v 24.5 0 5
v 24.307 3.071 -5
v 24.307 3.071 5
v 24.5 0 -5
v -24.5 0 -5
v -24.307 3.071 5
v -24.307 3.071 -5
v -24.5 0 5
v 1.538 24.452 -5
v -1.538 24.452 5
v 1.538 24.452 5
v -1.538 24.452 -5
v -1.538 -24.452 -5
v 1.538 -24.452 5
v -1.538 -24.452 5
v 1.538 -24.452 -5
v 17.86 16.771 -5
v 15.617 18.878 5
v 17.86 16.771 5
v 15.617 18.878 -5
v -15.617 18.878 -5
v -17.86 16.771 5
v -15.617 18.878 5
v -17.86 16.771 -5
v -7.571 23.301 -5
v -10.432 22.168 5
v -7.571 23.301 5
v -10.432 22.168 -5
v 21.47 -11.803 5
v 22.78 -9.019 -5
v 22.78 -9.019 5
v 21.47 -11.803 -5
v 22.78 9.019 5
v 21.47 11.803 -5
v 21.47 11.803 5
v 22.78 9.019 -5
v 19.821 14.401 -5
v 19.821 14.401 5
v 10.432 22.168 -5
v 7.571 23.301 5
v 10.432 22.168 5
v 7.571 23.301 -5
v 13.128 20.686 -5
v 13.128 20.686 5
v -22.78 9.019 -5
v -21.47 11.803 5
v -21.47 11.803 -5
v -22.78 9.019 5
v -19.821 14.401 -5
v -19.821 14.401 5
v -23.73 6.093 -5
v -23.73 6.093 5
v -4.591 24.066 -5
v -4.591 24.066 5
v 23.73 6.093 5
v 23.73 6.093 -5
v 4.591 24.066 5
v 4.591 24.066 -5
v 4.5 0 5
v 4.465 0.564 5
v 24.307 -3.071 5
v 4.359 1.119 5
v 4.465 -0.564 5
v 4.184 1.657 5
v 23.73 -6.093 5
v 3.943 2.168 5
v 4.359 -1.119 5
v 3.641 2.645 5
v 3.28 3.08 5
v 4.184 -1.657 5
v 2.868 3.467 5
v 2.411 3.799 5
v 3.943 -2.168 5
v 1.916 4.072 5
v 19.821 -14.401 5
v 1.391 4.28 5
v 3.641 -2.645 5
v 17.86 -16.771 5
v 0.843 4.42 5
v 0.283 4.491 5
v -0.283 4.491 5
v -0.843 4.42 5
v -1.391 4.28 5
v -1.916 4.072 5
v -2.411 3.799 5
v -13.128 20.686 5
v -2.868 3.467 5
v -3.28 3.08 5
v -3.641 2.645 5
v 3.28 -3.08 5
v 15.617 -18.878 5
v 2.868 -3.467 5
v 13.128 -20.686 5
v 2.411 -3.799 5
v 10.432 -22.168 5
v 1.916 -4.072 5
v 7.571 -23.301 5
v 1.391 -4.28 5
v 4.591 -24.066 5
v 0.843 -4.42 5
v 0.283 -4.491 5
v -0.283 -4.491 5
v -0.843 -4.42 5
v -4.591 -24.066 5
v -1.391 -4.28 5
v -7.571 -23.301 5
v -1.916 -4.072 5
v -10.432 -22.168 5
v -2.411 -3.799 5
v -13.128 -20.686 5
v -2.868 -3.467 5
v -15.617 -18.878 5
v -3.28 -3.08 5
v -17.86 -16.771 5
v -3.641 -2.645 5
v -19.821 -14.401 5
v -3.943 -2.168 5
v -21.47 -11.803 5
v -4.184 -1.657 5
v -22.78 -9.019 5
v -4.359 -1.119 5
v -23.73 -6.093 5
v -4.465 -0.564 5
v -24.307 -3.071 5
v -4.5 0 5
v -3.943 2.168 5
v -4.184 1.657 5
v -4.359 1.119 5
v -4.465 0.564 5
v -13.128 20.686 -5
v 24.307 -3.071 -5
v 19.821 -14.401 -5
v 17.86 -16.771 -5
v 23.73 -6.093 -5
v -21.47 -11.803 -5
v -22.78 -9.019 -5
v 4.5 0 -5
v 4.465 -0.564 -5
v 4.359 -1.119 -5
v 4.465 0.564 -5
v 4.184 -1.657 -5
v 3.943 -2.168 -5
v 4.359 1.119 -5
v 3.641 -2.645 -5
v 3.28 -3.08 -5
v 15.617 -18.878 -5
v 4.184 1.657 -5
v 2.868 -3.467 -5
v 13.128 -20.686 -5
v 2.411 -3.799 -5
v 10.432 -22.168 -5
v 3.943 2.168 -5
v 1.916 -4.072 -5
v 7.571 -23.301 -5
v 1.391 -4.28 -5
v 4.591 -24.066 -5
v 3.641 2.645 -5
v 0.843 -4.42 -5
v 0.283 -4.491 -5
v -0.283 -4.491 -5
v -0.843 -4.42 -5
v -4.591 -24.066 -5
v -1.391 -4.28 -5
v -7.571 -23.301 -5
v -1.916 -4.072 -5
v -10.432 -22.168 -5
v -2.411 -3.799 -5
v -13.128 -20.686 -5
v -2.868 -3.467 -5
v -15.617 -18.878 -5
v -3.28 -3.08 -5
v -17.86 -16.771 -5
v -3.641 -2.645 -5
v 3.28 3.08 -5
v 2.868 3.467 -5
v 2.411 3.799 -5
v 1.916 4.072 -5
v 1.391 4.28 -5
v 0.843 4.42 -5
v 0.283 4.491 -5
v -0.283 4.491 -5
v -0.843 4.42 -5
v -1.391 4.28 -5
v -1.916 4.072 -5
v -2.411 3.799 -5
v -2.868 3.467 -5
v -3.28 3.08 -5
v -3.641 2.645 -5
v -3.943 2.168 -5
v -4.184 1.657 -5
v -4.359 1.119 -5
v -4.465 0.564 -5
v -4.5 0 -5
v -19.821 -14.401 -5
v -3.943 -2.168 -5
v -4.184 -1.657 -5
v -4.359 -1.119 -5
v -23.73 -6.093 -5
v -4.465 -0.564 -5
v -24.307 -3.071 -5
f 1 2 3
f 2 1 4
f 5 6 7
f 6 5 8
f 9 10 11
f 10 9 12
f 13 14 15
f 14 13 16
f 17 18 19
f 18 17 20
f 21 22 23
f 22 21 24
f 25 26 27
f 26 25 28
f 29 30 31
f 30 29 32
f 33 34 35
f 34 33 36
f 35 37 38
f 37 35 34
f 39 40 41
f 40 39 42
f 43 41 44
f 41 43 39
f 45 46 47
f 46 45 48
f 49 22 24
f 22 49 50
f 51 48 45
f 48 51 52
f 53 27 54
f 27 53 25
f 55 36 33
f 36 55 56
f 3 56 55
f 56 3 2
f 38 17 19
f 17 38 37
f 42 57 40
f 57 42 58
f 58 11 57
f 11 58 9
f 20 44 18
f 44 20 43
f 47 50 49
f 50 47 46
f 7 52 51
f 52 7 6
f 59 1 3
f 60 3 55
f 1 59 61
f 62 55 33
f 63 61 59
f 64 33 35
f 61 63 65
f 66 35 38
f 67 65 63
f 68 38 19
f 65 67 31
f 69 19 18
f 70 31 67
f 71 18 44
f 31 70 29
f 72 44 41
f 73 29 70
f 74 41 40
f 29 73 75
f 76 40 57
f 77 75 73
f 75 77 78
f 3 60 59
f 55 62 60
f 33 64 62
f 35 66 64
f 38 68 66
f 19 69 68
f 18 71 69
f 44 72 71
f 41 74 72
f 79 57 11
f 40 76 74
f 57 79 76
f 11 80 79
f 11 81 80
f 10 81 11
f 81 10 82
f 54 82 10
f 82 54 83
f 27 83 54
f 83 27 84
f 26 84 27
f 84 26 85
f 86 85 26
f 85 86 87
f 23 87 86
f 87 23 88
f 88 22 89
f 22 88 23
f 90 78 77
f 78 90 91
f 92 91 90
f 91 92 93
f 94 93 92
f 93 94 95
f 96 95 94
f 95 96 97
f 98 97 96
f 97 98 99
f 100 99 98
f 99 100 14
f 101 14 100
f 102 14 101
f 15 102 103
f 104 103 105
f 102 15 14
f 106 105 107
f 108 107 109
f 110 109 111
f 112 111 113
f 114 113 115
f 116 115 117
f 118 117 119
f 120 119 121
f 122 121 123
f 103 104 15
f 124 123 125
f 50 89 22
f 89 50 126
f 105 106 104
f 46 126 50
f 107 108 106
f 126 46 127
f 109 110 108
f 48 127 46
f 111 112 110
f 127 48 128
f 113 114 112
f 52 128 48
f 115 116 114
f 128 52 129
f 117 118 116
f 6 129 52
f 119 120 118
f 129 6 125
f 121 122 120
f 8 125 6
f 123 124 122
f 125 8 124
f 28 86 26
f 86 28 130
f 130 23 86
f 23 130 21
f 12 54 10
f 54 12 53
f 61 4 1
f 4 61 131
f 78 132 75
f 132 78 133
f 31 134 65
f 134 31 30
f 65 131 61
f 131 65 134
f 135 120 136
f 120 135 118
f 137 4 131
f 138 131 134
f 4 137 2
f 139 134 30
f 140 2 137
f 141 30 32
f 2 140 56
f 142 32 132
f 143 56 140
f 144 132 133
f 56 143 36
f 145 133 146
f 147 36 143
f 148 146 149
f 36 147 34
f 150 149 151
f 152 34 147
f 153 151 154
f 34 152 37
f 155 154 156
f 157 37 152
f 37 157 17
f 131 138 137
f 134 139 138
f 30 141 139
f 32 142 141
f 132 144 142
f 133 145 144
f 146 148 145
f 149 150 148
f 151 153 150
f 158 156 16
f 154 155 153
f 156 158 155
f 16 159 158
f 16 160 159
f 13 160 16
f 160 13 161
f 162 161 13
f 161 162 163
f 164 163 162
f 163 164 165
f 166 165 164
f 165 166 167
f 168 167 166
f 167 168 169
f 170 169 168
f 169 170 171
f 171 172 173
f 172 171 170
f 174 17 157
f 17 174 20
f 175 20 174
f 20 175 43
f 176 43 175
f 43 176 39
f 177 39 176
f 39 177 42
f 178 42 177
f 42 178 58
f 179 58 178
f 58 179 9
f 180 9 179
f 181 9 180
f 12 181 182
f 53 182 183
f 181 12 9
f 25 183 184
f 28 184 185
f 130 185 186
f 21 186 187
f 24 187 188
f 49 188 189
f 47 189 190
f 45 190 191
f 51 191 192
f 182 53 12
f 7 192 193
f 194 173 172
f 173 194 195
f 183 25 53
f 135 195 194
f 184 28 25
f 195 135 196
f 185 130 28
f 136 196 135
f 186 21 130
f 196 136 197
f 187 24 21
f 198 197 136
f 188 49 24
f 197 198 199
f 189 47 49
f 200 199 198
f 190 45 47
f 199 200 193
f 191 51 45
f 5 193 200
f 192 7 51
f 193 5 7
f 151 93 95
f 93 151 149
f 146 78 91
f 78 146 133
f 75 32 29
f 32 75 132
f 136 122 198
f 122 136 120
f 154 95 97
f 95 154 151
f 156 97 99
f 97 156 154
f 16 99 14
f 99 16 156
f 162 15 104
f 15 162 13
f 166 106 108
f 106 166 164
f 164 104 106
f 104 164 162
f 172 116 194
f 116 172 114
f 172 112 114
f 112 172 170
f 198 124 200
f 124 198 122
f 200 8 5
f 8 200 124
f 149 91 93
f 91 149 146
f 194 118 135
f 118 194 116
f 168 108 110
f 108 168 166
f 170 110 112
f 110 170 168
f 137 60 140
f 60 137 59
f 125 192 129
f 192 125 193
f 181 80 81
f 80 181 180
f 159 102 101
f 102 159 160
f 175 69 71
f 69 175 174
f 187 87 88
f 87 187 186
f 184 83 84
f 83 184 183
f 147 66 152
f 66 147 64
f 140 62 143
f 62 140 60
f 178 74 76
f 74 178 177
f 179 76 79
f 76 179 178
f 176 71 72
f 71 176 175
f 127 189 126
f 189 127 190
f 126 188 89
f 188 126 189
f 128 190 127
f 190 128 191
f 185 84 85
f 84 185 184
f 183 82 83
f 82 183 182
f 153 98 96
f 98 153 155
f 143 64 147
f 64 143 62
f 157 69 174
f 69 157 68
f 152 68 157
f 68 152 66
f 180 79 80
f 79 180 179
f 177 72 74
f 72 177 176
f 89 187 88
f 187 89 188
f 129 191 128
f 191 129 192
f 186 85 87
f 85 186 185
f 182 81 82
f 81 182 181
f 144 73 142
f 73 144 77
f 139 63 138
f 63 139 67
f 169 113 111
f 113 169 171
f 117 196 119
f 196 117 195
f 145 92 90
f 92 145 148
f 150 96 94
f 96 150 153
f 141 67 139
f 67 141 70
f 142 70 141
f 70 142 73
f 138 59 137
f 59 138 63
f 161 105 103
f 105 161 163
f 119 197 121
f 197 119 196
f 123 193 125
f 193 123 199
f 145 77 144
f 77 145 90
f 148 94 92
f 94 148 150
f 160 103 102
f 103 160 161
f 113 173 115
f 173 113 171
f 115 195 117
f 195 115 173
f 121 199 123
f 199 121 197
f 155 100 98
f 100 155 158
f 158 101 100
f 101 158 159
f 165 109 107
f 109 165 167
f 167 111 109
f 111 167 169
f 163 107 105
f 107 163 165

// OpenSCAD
$fn = 50;


difference() {
	union() {
		translate(v = [0, 0, -5.0000000000]) {
			cylinder(h = 10, r = 24.5000000000);
		}
	}
	union() {
		translate(v = [0, 0, -100.0000000000]) {
			cylinder(h = 200, r = 4.5000000000);
		}
	}
}
